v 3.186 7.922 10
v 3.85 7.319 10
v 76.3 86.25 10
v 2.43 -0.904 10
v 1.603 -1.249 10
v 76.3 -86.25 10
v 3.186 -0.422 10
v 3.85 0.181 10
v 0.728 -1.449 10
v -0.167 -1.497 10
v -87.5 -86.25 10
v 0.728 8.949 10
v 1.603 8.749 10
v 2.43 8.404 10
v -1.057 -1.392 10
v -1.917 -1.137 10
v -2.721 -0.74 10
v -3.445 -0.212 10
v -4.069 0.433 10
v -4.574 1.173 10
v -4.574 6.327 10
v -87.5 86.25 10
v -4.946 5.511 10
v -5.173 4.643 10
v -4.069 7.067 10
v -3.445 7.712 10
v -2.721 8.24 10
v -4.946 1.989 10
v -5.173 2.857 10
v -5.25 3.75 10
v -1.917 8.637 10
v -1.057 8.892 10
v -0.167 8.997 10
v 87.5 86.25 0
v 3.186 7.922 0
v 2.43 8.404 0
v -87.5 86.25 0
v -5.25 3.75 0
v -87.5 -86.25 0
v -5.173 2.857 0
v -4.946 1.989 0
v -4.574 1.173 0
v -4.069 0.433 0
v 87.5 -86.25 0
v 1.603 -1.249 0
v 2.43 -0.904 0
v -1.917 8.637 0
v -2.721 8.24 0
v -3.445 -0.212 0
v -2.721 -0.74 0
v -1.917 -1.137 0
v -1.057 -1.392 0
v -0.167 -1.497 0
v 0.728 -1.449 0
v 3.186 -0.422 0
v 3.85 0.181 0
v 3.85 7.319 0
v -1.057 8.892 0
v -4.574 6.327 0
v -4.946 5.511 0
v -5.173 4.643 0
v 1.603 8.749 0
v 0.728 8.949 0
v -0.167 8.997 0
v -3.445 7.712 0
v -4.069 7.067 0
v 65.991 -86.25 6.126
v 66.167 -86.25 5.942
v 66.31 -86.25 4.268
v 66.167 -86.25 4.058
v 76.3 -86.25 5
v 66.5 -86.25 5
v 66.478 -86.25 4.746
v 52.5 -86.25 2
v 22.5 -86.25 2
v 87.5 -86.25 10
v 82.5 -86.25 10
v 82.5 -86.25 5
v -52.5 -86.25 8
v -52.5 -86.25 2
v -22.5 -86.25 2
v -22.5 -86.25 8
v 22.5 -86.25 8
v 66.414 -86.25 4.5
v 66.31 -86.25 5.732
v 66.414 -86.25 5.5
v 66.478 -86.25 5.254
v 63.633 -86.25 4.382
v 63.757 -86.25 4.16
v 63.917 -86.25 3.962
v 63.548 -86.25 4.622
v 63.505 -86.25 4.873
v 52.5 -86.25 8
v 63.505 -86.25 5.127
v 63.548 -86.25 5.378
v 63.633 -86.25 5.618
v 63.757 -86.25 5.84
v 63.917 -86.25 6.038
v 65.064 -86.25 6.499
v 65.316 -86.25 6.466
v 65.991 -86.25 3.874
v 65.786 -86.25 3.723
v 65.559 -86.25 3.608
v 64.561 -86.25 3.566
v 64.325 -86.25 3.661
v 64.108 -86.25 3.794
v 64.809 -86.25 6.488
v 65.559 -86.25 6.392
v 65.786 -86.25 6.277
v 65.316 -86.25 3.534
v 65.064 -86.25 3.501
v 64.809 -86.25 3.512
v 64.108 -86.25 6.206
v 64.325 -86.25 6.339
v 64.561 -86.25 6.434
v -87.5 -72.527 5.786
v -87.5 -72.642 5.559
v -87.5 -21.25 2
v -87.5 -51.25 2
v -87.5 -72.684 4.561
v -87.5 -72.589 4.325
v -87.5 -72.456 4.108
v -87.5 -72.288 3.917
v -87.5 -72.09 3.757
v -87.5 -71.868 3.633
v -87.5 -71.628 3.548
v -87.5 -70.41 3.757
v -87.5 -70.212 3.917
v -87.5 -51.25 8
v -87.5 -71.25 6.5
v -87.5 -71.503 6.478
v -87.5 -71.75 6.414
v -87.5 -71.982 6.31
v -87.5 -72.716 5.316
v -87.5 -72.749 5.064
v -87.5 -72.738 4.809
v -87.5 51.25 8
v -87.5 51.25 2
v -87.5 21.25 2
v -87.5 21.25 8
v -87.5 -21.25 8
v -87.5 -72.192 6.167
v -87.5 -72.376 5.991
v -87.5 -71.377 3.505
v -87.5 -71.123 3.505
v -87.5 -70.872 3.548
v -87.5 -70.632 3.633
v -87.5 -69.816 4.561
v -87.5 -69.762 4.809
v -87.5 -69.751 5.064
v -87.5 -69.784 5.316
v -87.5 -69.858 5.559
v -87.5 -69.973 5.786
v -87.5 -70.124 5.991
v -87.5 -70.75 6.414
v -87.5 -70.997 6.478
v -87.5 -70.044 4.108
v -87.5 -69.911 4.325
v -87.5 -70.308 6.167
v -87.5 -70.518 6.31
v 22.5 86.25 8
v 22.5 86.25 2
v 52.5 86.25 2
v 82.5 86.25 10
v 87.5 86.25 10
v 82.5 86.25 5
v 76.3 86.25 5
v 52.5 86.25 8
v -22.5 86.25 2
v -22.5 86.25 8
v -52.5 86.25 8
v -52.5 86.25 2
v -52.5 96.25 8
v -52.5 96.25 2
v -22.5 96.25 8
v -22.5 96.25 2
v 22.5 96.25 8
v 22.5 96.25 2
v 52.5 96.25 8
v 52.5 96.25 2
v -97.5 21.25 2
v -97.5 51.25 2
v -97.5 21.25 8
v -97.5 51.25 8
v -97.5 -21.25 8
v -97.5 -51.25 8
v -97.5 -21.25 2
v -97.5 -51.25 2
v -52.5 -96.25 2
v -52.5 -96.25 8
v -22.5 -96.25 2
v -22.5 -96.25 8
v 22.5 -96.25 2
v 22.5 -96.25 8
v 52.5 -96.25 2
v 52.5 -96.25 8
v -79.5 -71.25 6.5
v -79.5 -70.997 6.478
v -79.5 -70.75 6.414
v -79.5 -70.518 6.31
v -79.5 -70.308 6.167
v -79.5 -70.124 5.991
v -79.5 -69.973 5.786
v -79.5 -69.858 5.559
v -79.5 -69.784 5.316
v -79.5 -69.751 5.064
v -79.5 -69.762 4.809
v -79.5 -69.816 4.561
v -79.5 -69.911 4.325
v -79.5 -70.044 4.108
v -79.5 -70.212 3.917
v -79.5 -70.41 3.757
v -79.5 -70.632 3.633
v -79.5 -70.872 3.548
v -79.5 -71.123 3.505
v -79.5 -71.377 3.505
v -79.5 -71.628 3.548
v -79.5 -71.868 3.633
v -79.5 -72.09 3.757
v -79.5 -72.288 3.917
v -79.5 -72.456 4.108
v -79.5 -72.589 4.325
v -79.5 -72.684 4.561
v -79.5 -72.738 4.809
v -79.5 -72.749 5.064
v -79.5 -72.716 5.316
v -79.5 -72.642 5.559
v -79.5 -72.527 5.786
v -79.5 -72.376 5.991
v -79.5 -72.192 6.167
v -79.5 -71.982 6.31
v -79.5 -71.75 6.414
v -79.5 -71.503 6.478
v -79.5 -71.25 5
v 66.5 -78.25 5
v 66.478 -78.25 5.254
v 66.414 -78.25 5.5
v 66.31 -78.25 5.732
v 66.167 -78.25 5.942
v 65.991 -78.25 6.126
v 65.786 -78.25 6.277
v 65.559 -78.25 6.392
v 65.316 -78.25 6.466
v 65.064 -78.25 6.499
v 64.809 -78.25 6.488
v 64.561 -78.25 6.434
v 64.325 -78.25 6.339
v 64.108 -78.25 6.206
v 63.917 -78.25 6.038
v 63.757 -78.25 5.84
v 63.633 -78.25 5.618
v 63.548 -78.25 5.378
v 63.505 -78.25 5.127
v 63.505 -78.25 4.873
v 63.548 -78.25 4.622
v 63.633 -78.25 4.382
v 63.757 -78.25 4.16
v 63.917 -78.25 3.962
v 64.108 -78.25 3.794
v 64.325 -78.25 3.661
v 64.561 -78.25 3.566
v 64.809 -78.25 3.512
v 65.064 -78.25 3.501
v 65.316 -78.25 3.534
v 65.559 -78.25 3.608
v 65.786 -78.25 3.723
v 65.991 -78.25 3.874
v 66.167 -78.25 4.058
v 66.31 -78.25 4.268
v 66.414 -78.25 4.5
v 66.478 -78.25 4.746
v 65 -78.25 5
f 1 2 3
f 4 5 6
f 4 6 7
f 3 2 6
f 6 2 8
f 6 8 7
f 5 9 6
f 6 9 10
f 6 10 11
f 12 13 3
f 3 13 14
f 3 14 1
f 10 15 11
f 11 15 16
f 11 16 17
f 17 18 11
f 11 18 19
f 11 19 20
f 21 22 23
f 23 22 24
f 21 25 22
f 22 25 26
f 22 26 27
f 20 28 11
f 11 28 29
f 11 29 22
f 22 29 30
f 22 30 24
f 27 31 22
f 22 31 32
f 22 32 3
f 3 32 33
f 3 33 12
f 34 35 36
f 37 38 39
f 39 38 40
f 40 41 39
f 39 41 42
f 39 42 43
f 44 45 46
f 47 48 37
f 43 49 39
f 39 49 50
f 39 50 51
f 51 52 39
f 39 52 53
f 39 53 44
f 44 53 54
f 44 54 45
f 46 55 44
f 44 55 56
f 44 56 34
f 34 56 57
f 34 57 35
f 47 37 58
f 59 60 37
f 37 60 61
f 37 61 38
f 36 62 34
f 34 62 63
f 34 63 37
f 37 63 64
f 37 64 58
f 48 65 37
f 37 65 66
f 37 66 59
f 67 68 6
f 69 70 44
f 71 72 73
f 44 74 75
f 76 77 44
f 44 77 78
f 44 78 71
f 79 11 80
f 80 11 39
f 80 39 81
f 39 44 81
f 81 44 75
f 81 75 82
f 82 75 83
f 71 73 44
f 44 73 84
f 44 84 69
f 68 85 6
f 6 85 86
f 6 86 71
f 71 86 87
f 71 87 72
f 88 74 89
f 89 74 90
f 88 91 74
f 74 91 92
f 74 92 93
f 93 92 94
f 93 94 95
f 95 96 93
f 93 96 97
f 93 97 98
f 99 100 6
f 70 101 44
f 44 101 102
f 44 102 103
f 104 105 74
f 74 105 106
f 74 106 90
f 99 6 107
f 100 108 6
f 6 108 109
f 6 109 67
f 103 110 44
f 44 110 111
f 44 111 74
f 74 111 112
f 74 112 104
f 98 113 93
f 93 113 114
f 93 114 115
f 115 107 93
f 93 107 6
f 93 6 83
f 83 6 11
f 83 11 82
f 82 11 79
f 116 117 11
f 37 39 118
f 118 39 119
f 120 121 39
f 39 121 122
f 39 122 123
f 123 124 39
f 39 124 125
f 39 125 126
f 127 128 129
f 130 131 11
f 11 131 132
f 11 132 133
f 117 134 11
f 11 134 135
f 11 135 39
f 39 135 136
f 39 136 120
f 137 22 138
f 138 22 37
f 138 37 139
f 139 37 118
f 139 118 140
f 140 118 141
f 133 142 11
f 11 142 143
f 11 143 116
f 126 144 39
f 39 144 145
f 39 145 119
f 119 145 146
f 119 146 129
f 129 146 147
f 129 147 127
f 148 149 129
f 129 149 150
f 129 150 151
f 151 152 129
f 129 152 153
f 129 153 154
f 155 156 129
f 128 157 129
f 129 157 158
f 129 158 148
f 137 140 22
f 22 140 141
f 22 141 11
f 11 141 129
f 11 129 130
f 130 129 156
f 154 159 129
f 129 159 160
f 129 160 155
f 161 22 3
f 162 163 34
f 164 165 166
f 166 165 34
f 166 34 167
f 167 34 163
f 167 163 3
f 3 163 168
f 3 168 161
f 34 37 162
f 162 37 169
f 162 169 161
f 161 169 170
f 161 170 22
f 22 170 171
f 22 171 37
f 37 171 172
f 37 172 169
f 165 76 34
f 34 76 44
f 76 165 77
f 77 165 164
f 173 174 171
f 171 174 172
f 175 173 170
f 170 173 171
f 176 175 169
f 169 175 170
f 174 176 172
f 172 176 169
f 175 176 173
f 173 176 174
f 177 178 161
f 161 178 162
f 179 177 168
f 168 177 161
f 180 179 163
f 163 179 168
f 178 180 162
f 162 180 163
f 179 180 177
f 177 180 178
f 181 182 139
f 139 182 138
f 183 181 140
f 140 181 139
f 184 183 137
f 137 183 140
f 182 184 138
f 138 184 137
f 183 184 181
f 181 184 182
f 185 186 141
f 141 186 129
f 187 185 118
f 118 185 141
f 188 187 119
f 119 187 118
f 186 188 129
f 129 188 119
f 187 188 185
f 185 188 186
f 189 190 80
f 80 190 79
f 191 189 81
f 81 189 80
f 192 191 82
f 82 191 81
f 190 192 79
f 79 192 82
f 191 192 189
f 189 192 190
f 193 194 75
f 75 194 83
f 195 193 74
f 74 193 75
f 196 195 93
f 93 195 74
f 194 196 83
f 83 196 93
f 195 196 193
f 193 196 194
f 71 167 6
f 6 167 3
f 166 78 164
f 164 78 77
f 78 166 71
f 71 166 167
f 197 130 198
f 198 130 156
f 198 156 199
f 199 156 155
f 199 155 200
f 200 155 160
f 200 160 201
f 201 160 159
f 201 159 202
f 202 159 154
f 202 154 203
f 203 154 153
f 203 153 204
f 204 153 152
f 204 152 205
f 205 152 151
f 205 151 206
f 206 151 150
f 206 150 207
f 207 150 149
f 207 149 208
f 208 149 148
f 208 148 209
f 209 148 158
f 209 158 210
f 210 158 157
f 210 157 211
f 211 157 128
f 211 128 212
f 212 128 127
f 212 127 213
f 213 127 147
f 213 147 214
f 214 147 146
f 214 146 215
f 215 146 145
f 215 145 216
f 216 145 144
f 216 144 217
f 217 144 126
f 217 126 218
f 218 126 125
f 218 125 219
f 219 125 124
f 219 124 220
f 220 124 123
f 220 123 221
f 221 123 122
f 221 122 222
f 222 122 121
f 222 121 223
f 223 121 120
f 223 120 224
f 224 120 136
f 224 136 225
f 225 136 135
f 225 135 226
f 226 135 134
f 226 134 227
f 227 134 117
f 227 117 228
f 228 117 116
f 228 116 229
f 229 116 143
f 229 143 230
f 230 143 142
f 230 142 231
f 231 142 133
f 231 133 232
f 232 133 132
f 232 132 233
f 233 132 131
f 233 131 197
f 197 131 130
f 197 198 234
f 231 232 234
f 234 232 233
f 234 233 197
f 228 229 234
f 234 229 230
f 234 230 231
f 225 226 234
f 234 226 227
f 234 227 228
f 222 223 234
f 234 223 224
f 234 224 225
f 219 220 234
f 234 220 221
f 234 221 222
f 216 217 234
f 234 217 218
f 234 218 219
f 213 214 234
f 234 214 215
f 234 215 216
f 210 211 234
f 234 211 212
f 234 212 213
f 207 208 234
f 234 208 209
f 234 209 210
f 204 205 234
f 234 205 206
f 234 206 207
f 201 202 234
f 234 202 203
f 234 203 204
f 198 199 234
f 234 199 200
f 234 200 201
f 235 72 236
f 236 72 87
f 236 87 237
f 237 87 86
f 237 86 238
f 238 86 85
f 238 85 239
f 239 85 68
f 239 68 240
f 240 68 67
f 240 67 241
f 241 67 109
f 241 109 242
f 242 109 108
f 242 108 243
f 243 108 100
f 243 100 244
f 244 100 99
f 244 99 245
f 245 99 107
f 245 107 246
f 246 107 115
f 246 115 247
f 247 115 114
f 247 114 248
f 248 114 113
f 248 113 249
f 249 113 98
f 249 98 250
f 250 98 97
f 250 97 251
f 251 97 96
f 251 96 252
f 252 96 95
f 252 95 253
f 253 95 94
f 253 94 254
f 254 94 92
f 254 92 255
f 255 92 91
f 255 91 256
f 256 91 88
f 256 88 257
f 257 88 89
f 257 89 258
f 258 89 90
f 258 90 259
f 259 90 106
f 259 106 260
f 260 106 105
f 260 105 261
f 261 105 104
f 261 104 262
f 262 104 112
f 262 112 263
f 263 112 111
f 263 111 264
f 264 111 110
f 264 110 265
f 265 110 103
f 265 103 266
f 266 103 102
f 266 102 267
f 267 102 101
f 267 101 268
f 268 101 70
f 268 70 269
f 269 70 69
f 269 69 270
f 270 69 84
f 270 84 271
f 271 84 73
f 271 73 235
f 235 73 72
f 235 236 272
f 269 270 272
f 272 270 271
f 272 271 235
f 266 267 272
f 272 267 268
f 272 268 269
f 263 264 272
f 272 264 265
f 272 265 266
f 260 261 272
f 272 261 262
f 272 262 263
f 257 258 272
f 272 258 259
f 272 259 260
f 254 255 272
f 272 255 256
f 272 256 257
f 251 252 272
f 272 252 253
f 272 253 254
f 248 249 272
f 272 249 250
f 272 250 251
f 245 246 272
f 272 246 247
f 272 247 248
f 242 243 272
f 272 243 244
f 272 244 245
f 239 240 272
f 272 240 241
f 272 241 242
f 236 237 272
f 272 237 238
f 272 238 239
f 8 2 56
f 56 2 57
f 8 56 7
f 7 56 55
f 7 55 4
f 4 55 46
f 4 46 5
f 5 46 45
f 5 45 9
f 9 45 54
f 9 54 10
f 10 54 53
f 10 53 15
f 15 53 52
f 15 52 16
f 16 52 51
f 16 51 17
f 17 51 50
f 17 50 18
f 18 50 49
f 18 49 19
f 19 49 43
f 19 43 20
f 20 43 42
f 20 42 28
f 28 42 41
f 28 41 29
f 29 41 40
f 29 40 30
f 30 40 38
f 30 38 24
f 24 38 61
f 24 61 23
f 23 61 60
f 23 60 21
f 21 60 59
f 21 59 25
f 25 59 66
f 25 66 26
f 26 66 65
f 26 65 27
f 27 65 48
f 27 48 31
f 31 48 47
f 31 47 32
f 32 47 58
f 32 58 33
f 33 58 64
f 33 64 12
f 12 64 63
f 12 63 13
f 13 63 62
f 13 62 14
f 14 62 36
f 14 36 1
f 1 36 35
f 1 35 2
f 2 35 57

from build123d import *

# Parameters (mm, degrees)
ESBO_O1_W                = 175
ESBO_O1_H                = 172.5
RESSALTO_EXTRUS_O1_DEPTH = 10
ESBO_O5_W                = 30
ESBO_O5_H                = 6
RESSALTO_EXTRUS_O5_DEPTH = 10
ESBO_O6_W                = 6
ESBO_O6_H                = 30
RESSALTO_EXTRUS_O6_DEPTH = 10
ESBO_O7_W                = 30
ESBO_O7_H                = 6
RESSALTO_EXTRUS_O7_DEPTH = 10
ESBO_O9_W                = 6.2
ESBO_O9_H                = 172.5
CORTE_EXTRUS_O2_DEPTH    = 5
ESBO_O10_R               = 1.5
CORTE_EXTRUS_O3_DEPTH    = 8
ESBO_O11_R               = 1.5
CORTE_EXTRUS_O4_DEPTH    = 8
CORTE_EXTRUS_O5_DEPTH    = 11


with BuildPart() as part:
    # Esboço1 → Ressalto-extrusão1 (new body)
    with BuildSketch(Plane.XY):
        Rectangle(ESBO_O1_W, ESBO_O1_H)
    extrude(amount=RESSALTO_EXTRUS_O1_DEPTH)

    # Esboço5 → Ressalto-extrusão5 (add)
    with BuildSketch(Plane(origin=(0, 86.25, 0), x_dir=(1, 0, 0), z_dir=(0, 1, 0))):
        with Locations((-37.5, -5)):
            Rectangle(ESBO_O5_W, ESBO_O5_H)
        with Locations((37.5, -5)):
            Rectangle(ESBO_O5_W, ESBO_O5_H)
    extrude(amount=RESSALTO_EXTRUS_O5_DEPTH)

    # Esboço6 → Ressalto-extrusão6 (add)
    with BuildSketch(Plane.ZY.offset(87.5)):
        with Locations((5, 36.25)):
            Rectangle(ESBO_O6_W, ESBO_O6_H)
        with Locations((5, -36.25)):
            Rectangle(ESBO_O6_W, ESBO_O6_H)
    extrude(amount=RESSALTO_EXTRUS_O6_DEPTH)

    # Esboço7 → Ressalto-extrusão7 (add)
    with BuildSketch(Plane.XZ.offset(86.25)):
        with Locations((-37.5, 5)):
            Rectangle(ESBO_O7_W, ESBO_O7_H)
        with Locations((37.5, 5)):
            Rectangle(ESBO_O7_W, ESBO_O7_H)
    extrude(amount=RESSALTO_EXTRUS_O7_DEPTH)

    # Esboço9 → Corte-extrusão2 (cut)
    with BuildSketch(Plane.XY.offset(10)):
        with Locations((79.4, 0)):
            Rectangle(ESBO_O9_W, ESBO_O9_H)
    extrude(amount=-CORTE_EXTRUS_O2_DEPTH, mode=Mode.SUBTRACT)

    # Esboço10 → Corte-extrusão3 (cut)
    with BuildSketch(Plane.ZY.offset(87.5)):
        with Locations((5, -71.25)):
            Circle(ESBO_O10_R)
    extrude(amount=-CORTE_EXTRUS_O3_DEPTH, mode=Mode.SUBTRACT)

    # Esboço11 → Corte-extrusão4 (cut)
    with BuildSketch(Plane.XZ.offset(86.25)):
        with Locations((65, 5)):
            Circle(ESBO_O11_R)
    extrude(amount=-CORTE_EXTRUS_O4_DEPTH, mode=Mode.SUBTRACT)

    # Esboço12 → Corte-extrusão5 (cut, through all)
    with BuildSketch(Plane(origin=(0, 0, 0), x_dir=(-1, 0, 0), z_dir=(0, 0, -1))):
        with BuildLine():
            Line((-3.85, 7.31931366), (-3.85, 0.18068634))
            ThreePointArc((-3.85, 0.18068634), (1.917028951, -1.137484015), (5.25, 3.75))
            ThreePointArc((5.25, 3.75), (1.917028951, 8.637484015), (-3.85, 7.31931366))
        make_face()
    extrude(amount=-CORTE_EXTRUS_O5_DEPTH, mode=Mode.SUBTRACT)


solid = part.part
